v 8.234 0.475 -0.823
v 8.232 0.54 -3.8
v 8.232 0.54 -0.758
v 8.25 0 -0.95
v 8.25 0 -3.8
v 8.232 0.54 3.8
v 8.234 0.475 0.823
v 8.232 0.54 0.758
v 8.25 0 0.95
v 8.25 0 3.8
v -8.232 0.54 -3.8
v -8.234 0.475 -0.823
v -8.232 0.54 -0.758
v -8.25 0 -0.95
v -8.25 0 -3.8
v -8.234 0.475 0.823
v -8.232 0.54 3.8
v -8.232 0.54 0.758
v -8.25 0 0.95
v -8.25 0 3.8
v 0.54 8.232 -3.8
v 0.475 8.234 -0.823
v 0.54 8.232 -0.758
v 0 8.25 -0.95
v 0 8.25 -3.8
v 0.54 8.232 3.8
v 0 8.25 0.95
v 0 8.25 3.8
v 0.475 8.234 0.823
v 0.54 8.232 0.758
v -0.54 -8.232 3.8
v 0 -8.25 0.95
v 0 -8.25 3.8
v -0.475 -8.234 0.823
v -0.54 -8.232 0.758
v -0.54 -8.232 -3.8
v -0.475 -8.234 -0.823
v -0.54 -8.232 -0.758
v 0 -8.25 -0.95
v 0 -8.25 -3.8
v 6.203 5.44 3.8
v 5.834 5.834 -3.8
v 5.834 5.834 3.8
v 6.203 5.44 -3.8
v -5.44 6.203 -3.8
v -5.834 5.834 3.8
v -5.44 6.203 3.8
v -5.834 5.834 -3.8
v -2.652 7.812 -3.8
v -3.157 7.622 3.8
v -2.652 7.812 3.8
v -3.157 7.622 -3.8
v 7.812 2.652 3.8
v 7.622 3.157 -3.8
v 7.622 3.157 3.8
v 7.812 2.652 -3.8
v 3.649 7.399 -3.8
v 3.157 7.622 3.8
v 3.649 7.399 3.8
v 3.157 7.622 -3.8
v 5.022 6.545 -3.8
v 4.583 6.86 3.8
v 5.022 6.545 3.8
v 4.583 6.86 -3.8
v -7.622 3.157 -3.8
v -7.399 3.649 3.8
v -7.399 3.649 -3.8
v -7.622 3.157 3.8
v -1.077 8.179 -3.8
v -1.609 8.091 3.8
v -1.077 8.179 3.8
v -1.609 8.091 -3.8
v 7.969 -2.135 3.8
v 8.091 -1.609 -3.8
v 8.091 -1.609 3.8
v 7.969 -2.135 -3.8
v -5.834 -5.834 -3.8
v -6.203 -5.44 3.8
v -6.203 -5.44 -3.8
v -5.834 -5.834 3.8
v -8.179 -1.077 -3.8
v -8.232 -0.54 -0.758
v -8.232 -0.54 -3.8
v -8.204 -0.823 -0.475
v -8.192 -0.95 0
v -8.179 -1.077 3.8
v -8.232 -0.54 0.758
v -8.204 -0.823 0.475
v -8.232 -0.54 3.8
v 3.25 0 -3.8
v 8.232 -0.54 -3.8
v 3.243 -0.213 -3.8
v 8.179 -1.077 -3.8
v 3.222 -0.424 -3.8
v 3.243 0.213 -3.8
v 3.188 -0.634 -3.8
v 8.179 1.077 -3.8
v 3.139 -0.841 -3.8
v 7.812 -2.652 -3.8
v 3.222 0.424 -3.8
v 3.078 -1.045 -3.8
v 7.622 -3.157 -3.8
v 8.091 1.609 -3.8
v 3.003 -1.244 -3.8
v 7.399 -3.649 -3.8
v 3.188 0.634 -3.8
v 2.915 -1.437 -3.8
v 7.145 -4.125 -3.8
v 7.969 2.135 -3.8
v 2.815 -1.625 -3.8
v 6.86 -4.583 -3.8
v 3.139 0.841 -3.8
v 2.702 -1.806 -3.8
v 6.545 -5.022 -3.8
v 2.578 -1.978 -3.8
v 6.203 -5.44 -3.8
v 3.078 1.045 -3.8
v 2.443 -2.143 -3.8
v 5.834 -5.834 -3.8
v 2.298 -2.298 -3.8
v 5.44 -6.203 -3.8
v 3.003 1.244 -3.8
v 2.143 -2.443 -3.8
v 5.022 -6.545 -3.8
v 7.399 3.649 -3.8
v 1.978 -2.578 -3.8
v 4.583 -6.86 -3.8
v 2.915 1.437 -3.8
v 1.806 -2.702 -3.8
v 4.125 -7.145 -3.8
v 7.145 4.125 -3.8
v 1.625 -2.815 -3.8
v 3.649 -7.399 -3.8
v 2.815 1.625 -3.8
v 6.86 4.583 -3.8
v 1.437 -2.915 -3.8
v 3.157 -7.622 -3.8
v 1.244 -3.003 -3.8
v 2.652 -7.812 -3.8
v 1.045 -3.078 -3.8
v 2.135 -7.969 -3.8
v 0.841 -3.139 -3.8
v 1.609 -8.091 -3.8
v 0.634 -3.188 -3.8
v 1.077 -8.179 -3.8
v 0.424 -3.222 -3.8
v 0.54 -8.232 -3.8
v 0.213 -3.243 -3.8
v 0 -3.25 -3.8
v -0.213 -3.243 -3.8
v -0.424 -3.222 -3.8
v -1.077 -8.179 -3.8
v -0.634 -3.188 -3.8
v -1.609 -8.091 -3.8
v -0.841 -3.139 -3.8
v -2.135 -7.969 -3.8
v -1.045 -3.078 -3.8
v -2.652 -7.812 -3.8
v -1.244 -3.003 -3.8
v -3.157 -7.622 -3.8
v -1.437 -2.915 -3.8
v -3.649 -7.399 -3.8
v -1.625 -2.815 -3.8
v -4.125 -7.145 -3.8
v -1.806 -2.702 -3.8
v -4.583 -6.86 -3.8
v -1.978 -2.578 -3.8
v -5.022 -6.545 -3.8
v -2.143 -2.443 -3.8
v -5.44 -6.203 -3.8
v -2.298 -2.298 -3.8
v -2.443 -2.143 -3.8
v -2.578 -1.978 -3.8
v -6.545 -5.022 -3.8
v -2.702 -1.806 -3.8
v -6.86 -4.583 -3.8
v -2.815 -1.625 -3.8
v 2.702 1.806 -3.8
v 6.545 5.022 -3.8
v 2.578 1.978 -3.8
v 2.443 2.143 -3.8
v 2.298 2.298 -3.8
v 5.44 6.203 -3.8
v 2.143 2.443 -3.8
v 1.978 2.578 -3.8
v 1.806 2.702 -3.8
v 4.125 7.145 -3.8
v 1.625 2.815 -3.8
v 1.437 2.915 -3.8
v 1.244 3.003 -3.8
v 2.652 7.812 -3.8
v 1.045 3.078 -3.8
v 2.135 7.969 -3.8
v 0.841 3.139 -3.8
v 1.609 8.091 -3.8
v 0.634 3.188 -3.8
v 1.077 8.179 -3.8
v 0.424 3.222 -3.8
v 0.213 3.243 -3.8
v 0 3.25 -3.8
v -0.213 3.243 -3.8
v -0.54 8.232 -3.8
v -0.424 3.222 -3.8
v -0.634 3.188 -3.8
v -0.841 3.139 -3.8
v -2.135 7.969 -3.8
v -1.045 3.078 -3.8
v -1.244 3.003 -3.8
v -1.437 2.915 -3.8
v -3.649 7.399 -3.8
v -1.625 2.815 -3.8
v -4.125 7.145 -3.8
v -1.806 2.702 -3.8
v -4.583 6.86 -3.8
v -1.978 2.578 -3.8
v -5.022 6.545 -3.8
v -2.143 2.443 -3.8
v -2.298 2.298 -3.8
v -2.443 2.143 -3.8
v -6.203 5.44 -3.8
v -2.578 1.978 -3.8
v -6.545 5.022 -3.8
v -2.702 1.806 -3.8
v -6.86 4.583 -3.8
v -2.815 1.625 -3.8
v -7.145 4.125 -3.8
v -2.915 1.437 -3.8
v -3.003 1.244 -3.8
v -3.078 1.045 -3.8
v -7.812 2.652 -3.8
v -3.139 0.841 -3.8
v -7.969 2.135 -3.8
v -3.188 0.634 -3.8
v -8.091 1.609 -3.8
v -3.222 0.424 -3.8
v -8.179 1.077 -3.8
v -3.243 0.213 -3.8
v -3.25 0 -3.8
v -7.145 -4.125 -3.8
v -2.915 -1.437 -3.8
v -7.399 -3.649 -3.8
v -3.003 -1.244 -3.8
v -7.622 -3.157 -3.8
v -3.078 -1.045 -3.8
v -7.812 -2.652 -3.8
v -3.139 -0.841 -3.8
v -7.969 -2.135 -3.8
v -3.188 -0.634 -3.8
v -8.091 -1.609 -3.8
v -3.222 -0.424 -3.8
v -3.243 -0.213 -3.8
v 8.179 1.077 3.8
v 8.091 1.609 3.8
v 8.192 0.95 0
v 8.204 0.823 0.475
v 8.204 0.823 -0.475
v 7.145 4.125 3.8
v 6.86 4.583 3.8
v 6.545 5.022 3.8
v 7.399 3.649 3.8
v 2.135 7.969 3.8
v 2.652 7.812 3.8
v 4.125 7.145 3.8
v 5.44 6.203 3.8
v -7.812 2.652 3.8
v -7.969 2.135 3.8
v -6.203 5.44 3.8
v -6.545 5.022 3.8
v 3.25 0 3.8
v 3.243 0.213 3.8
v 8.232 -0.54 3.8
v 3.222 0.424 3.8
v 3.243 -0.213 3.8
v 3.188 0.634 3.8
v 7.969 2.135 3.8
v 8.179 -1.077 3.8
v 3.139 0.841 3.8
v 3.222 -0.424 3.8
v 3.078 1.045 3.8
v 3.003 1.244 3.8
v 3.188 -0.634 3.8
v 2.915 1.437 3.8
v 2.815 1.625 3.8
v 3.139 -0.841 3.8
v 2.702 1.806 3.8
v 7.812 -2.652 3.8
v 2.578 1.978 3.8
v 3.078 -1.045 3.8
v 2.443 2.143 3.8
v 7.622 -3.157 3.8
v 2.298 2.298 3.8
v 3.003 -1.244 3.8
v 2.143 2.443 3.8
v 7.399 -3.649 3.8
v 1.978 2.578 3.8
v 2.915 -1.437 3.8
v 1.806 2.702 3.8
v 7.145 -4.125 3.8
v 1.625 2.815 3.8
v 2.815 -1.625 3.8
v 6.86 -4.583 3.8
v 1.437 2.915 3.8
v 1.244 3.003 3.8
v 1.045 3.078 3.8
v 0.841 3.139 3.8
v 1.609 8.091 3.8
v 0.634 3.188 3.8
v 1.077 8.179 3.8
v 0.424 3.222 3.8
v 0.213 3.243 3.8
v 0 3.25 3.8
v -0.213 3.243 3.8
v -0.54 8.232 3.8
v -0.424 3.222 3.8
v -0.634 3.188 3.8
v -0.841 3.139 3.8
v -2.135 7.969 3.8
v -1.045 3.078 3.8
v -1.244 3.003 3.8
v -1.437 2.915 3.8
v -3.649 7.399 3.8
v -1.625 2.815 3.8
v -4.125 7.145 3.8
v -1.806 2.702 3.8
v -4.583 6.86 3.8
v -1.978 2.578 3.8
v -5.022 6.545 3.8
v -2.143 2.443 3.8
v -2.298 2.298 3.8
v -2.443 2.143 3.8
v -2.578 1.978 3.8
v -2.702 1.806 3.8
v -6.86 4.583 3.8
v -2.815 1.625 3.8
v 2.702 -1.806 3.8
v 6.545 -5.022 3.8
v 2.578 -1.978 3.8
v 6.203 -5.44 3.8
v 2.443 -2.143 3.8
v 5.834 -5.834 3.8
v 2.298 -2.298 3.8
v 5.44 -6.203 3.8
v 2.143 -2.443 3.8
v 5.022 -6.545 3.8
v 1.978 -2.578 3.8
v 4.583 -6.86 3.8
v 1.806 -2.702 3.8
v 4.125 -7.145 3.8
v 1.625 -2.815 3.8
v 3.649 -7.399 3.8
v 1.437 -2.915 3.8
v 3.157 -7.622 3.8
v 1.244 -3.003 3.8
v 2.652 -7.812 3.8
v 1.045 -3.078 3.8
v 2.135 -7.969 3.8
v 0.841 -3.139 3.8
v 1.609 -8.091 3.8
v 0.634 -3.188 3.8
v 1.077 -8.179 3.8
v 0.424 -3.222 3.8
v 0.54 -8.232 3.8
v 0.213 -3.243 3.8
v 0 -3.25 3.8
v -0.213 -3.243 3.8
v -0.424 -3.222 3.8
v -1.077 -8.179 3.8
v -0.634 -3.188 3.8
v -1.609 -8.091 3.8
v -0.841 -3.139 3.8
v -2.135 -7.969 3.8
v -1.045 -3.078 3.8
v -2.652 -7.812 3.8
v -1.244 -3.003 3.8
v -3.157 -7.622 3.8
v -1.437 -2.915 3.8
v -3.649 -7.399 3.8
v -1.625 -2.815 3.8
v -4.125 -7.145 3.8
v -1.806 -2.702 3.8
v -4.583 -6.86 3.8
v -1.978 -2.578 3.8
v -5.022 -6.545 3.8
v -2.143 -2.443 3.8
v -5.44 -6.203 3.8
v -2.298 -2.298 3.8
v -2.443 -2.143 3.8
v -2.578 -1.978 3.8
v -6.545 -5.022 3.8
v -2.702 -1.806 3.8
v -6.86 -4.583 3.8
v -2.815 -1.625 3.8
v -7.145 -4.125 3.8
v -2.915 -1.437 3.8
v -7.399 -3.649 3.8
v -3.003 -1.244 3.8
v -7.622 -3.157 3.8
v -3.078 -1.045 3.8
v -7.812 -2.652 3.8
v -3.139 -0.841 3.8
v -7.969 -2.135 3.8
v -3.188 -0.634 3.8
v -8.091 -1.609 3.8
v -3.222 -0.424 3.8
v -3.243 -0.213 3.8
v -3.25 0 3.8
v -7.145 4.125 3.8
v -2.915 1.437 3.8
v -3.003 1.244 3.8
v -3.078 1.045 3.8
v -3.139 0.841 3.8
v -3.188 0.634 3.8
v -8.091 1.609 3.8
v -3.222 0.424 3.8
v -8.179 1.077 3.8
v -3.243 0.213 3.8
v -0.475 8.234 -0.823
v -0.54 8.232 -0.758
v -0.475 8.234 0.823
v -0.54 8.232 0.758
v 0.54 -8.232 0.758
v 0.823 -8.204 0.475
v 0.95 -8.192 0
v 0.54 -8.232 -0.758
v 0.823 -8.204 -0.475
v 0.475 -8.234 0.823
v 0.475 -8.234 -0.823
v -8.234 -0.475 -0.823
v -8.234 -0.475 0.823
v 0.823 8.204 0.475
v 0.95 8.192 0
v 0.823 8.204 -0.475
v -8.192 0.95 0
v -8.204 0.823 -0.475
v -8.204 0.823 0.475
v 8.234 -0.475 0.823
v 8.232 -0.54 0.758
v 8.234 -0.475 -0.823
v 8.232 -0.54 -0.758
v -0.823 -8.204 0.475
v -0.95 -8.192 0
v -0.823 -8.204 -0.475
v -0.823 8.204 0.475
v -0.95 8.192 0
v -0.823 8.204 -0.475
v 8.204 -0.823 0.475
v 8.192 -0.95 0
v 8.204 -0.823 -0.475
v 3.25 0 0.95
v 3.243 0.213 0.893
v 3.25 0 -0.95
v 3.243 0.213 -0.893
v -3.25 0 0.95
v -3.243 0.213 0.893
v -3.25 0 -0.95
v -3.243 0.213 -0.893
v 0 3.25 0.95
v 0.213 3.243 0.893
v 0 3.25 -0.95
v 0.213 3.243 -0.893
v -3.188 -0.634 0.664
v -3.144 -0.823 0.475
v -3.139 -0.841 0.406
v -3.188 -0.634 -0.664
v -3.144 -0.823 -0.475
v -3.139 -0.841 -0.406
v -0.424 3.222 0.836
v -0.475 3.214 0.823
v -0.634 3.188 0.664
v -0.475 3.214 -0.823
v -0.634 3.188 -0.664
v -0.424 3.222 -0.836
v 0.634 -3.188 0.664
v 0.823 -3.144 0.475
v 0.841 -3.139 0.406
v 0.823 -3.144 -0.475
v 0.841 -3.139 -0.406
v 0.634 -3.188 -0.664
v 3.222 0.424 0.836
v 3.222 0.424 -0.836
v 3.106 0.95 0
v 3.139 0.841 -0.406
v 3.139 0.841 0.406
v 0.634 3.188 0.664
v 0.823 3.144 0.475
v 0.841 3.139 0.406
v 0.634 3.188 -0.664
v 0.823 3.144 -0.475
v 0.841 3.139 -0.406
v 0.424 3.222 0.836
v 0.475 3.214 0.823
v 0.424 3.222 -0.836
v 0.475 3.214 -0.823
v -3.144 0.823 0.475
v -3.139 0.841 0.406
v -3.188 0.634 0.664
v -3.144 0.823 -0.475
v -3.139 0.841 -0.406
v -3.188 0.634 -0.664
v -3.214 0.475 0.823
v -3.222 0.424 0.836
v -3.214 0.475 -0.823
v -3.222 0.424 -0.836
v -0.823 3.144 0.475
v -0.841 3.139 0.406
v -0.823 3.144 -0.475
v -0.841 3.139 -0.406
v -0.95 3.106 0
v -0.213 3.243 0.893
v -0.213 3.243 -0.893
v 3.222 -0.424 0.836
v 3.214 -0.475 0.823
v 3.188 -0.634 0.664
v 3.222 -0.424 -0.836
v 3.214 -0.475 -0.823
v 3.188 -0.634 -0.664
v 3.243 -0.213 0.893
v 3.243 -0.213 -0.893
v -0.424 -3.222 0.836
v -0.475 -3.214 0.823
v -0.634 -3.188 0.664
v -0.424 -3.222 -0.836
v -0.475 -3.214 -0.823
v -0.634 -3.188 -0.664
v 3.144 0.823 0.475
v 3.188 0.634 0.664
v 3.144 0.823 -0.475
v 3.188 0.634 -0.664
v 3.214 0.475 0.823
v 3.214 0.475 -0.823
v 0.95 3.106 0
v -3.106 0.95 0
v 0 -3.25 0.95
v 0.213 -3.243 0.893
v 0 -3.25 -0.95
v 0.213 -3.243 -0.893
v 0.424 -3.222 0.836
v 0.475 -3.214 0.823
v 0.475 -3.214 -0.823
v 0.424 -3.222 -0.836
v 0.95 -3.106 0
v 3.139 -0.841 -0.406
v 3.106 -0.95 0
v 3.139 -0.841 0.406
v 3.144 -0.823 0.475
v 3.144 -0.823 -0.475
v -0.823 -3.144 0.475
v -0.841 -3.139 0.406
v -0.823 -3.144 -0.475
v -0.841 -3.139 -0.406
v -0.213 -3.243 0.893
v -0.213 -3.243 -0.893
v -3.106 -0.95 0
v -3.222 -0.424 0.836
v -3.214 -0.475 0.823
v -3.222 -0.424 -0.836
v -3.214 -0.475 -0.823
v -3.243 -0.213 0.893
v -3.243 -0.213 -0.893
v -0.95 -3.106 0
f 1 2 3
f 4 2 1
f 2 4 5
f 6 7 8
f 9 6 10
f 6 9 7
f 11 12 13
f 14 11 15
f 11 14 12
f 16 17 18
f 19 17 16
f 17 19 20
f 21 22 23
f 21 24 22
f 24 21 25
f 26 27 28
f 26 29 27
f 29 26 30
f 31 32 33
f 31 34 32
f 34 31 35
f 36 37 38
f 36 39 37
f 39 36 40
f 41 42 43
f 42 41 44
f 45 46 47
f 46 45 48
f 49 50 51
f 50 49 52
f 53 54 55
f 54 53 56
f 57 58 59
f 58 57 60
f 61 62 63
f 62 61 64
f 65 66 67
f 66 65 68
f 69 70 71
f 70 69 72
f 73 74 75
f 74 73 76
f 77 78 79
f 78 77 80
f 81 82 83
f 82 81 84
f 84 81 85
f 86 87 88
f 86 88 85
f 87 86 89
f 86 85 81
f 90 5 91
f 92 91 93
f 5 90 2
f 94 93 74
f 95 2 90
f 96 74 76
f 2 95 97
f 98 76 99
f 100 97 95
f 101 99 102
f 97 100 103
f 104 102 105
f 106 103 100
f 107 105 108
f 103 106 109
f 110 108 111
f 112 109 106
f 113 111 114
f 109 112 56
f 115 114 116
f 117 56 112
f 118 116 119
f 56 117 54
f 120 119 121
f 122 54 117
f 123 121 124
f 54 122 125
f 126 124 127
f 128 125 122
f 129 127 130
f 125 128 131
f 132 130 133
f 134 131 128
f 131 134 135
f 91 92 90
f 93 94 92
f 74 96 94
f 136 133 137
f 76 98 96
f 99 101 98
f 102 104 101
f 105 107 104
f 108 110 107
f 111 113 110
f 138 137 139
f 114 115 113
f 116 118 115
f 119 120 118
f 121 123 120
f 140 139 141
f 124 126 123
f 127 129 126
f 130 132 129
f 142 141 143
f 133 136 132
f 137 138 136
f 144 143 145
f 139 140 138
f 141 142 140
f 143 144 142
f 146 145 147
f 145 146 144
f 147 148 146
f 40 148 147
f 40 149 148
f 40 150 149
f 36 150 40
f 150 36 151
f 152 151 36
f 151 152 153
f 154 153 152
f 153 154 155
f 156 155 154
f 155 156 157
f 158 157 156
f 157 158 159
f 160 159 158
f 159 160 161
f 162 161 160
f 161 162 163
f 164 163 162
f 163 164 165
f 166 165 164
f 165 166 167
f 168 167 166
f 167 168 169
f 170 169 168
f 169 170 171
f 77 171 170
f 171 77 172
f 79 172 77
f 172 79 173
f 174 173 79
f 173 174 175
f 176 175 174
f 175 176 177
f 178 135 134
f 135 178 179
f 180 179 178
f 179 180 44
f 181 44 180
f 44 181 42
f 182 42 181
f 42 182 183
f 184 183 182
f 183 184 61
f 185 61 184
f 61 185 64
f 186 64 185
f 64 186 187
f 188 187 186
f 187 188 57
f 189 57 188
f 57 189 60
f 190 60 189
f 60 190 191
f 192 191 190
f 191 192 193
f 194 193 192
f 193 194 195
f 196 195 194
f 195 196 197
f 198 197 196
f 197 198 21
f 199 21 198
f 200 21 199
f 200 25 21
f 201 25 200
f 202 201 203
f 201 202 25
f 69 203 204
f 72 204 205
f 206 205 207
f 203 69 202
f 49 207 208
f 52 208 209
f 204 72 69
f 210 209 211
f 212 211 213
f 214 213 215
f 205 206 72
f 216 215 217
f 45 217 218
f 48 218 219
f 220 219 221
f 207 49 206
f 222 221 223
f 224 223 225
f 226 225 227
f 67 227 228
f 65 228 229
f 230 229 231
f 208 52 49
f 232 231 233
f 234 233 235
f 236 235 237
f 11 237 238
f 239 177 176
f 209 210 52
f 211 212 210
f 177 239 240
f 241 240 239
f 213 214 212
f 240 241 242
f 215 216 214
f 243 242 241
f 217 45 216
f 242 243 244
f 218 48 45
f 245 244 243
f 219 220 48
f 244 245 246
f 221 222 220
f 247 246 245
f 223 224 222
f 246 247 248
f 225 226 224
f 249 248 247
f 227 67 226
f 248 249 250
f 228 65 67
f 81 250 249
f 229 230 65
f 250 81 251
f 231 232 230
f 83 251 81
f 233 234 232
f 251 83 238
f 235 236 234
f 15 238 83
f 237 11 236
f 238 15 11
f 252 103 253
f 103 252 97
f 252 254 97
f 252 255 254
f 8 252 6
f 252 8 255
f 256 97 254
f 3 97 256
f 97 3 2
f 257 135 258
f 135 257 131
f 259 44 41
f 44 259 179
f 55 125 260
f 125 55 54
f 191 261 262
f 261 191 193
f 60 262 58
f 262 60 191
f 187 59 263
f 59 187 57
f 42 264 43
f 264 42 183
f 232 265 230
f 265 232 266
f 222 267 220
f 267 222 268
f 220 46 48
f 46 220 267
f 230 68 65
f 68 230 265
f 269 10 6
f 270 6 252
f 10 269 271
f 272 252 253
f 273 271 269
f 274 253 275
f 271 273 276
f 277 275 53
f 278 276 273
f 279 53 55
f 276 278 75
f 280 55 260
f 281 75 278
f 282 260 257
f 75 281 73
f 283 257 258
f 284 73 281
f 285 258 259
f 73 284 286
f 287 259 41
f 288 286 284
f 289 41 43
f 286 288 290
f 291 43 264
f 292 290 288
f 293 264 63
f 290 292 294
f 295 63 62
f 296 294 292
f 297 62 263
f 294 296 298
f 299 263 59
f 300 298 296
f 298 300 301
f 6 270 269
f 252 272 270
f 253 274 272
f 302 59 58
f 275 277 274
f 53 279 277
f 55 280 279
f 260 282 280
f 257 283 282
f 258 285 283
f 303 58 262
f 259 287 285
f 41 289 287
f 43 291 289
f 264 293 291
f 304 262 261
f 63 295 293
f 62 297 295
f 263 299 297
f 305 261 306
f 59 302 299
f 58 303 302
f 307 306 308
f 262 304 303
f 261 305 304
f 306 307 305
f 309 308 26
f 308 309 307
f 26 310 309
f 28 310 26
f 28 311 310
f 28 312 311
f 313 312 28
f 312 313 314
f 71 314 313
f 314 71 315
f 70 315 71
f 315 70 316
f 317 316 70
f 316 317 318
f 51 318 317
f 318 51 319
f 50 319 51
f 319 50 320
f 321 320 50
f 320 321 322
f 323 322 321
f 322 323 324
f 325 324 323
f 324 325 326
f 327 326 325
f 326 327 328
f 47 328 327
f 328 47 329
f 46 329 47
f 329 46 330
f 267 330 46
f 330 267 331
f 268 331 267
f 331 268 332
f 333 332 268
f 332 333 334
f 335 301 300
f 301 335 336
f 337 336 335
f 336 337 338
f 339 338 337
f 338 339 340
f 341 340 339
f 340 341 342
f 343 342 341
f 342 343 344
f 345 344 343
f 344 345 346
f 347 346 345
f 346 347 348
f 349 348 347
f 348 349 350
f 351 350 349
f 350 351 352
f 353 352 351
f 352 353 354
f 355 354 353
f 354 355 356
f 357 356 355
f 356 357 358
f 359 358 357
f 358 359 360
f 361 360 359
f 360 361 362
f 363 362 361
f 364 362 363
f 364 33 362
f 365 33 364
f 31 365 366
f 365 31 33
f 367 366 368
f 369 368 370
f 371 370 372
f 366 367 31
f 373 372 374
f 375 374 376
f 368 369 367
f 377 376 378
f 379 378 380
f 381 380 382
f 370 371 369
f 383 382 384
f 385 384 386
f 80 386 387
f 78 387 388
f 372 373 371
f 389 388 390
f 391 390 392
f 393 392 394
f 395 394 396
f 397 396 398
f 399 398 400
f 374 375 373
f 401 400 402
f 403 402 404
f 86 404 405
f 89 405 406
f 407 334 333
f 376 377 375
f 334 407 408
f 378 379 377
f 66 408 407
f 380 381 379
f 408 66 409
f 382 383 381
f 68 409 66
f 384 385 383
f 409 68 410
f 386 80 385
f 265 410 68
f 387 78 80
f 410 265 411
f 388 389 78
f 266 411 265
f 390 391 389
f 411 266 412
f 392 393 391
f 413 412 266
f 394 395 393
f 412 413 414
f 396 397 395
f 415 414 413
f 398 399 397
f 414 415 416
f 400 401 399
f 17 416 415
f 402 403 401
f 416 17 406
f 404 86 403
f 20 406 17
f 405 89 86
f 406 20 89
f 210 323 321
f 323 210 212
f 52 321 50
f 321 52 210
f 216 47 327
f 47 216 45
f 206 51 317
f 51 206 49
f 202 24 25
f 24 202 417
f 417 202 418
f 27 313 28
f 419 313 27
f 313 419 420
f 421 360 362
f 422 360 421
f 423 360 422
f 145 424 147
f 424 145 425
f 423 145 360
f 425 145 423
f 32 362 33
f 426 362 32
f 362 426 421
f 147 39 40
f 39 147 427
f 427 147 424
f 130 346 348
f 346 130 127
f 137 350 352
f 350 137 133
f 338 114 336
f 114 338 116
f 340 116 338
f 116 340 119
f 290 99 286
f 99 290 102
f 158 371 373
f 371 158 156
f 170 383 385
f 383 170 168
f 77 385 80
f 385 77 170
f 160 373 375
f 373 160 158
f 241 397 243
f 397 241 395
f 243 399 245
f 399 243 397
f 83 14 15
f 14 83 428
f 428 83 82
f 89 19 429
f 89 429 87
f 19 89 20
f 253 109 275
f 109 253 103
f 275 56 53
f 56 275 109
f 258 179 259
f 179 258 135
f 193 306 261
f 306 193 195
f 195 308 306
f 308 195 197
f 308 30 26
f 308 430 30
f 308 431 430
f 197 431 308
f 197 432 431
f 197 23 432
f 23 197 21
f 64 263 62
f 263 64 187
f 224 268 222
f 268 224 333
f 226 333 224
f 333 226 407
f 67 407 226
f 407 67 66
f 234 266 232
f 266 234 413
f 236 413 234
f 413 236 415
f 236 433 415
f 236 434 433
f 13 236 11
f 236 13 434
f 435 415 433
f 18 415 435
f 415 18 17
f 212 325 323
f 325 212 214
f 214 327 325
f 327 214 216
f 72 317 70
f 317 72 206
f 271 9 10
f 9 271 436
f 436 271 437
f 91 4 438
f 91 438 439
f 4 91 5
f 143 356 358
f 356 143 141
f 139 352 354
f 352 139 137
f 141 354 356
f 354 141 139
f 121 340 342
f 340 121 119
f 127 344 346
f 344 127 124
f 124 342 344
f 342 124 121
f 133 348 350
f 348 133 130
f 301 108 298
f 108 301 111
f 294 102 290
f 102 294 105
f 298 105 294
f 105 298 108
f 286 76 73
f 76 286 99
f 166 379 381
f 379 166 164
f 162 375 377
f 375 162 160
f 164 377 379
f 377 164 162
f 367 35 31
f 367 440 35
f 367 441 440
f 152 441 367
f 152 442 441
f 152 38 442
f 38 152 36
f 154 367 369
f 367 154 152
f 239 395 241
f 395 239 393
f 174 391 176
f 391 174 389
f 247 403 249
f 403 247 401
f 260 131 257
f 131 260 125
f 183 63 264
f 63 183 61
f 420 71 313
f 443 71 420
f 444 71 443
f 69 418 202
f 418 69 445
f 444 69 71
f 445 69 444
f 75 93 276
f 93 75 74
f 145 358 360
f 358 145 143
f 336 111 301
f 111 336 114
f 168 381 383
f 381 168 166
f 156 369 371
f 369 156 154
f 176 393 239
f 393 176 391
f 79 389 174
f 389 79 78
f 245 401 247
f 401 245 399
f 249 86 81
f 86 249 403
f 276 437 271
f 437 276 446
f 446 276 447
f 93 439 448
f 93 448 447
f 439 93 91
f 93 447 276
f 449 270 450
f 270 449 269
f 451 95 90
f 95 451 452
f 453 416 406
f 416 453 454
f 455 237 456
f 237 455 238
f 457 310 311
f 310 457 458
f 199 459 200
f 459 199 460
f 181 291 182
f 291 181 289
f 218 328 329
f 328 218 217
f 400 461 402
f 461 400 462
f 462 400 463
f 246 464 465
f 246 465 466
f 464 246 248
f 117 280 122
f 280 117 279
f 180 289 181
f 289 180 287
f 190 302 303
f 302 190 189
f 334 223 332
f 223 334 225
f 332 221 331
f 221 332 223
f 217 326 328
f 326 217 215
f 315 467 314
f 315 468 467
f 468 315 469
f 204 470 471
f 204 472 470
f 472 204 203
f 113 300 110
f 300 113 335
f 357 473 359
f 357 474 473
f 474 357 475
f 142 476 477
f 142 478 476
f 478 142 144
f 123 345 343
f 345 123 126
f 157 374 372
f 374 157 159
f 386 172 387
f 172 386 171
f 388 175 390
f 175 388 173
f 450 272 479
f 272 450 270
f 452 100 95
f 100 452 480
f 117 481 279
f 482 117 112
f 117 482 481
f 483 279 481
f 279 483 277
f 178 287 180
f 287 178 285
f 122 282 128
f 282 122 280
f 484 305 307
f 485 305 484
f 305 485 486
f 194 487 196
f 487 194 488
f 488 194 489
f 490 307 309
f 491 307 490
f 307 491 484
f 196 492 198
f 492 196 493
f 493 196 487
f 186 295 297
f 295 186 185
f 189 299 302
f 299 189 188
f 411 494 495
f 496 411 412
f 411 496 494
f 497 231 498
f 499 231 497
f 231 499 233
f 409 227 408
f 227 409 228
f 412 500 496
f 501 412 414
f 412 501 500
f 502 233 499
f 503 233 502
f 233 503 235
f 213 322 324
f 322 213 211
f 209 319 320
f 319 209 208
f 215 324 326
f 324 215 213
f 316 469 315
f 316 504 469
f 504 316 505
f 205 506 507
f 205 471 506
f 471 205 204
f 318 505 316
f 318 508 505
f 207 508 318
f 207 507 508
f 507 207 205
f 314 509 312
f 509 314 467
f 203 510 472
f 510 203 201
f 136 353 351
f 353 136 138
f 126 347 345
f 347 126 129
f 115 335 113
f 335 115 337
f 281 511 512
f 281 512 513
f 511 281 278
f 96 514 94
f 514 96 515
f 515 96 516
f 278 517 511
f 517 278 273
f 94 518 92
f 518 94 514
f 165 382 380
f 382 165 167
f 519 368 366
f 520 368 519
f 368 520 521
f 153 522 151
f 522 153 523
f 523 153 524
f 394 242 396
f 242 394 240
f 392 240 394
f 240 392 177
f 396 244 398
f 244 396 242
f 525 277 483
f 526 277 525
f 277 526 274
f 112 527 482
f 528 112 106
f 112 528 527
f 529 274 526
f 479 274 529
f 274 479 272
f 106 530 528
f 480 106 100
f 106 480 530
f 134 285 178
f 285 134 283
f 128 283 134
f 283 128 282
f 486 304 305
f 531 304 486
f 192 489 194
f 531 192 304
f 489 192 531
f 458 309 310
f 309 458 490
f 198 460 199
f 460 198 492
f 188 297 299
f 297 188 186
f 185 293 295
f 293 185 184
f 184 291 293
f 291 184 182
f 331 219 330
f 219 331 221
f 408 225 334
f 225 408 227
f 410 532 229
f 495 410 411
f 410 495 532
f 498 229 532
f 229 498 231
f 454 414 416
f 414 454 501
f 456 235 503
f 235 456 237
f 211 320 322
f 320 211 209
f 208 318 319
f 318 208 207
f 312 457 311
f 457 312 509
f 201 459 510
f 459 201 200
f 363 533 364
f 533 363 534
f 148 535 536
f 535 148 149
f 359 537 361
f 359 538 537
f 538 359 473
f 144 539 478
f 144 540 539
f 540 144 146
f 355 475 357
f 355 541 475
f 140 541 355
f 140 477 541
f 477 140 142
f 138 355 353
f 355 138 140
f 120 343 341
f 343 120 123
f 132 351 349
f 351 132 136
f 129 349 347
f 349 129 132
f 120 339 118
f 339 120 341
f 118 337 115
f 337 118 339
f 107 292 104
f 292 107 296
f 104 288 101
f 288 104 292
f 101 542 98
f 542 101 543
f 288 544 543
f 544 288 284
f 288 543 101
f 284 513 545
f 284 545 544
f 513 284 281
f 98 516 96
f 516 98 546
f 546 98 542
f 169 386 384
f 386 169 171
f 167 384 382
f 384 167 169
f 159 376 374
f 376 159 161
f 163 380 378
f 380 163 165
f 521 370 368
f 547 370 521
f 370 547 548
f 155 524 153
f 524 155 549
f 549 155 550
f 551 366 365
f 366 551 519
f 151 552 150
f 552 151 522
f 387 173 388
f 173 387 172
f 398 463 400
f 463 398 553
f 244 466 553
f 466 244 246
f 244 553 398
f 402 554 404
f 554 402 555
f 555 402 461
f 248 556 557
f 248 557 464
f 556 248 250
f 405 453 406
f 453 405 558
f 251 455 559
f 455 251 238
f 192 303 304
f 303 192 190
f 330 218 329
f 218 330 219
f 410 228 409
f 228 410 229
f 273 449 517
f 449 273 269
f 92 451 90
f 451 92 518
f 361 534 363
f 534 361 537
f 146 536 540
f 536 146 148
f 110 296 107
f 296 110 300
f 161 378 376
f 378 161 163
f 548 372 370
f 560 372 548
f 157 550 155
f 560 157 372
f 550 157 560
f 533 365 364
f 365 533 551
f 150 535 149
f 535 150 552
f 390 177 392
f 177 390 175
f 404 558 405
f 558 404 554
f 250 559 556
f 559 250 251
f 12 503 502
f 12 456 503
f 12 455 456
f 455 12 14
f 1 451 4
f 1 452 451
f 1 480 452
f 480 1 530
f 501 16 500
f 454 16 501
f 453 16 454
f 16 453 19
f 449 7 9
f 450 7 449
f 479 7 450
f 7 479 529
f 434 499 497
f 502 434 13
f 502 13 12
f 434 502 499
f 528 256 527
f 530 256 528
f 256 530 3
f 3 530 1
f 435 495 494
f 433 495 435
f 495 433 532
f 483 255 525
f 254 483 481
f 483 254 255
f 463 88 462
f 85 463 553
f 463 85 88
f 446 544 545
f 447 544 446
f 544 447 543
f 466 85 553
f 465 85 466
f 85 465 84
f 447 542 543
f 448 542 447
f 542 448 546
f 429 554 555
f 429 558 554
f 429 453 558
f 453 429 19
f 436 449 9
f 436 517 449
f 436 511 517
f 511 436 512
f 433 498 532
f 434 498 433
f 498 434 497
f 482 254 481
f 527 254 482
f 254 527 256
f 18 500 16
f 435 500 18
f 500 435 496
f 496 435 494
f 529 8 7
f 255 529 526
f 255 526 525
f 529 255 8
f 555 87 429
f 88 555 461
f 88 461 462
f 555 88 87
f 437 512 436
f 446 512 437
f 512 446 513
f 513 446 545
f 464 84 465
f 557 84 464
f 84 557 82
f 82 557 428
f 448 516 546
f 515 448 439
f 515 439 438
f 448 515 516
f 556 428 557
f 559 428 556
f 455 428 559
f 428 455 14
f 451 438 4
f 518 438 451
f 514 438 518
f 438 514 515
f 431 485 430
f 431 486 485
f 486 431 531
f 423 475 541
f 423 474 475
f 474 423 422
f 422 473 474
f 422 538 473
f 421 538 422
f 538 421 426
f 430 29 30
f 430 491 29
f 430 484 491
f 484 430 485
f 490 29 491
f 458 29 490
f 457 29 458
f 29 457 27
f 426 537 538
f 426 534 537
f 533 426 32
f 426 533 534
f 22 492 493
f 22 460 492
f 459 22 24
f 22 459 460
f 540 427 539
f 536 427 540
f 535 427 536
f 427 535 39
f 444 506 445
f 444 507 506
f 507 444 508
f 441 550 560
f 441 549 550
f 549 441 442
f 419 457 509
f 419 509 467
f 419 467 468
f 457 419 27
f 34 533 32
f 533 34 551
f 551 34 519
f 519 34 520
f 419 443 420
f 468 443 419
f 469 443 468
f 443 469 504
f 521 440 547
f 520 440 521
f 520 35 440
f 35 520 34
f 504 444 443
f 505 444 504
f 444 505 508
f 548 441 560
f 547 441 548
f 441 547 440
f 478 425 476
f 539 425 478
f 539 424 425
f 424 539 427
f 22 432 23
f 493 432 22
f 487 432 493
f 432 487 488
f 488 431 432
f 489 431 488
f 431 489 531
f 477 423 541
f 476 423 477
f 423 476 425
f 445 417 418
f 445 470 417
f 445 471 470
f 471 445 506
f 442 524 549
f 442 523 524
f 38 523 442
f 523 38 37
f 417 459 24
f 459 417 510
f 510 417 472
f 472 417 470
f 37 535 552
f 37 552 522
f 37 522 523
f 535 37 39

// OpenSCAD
// 2 (4) pieces
// could be used as stop collar on M6 bars in stead of iron or alu one.


DiaFix=1.9; // self tapping screw M2

M6=6.5;        // for easy insertion on M6 bold  
Height=7.6;


difference()
{
cylinder(h=Height,d=M6+10,center=true,$fn=96);// 9+4.8=13.8
 cylinder(h=Height+1,d=M6,center=true,$fn=96) ;  
    
    rotate([0,90,0])
    cylinder(d=DiaFix,h=20,$fn=12,center=true);
     rotate([90,0,0])
    cylinder(d=DiaFix,h=20,$fn=12,center=true);
    
}
